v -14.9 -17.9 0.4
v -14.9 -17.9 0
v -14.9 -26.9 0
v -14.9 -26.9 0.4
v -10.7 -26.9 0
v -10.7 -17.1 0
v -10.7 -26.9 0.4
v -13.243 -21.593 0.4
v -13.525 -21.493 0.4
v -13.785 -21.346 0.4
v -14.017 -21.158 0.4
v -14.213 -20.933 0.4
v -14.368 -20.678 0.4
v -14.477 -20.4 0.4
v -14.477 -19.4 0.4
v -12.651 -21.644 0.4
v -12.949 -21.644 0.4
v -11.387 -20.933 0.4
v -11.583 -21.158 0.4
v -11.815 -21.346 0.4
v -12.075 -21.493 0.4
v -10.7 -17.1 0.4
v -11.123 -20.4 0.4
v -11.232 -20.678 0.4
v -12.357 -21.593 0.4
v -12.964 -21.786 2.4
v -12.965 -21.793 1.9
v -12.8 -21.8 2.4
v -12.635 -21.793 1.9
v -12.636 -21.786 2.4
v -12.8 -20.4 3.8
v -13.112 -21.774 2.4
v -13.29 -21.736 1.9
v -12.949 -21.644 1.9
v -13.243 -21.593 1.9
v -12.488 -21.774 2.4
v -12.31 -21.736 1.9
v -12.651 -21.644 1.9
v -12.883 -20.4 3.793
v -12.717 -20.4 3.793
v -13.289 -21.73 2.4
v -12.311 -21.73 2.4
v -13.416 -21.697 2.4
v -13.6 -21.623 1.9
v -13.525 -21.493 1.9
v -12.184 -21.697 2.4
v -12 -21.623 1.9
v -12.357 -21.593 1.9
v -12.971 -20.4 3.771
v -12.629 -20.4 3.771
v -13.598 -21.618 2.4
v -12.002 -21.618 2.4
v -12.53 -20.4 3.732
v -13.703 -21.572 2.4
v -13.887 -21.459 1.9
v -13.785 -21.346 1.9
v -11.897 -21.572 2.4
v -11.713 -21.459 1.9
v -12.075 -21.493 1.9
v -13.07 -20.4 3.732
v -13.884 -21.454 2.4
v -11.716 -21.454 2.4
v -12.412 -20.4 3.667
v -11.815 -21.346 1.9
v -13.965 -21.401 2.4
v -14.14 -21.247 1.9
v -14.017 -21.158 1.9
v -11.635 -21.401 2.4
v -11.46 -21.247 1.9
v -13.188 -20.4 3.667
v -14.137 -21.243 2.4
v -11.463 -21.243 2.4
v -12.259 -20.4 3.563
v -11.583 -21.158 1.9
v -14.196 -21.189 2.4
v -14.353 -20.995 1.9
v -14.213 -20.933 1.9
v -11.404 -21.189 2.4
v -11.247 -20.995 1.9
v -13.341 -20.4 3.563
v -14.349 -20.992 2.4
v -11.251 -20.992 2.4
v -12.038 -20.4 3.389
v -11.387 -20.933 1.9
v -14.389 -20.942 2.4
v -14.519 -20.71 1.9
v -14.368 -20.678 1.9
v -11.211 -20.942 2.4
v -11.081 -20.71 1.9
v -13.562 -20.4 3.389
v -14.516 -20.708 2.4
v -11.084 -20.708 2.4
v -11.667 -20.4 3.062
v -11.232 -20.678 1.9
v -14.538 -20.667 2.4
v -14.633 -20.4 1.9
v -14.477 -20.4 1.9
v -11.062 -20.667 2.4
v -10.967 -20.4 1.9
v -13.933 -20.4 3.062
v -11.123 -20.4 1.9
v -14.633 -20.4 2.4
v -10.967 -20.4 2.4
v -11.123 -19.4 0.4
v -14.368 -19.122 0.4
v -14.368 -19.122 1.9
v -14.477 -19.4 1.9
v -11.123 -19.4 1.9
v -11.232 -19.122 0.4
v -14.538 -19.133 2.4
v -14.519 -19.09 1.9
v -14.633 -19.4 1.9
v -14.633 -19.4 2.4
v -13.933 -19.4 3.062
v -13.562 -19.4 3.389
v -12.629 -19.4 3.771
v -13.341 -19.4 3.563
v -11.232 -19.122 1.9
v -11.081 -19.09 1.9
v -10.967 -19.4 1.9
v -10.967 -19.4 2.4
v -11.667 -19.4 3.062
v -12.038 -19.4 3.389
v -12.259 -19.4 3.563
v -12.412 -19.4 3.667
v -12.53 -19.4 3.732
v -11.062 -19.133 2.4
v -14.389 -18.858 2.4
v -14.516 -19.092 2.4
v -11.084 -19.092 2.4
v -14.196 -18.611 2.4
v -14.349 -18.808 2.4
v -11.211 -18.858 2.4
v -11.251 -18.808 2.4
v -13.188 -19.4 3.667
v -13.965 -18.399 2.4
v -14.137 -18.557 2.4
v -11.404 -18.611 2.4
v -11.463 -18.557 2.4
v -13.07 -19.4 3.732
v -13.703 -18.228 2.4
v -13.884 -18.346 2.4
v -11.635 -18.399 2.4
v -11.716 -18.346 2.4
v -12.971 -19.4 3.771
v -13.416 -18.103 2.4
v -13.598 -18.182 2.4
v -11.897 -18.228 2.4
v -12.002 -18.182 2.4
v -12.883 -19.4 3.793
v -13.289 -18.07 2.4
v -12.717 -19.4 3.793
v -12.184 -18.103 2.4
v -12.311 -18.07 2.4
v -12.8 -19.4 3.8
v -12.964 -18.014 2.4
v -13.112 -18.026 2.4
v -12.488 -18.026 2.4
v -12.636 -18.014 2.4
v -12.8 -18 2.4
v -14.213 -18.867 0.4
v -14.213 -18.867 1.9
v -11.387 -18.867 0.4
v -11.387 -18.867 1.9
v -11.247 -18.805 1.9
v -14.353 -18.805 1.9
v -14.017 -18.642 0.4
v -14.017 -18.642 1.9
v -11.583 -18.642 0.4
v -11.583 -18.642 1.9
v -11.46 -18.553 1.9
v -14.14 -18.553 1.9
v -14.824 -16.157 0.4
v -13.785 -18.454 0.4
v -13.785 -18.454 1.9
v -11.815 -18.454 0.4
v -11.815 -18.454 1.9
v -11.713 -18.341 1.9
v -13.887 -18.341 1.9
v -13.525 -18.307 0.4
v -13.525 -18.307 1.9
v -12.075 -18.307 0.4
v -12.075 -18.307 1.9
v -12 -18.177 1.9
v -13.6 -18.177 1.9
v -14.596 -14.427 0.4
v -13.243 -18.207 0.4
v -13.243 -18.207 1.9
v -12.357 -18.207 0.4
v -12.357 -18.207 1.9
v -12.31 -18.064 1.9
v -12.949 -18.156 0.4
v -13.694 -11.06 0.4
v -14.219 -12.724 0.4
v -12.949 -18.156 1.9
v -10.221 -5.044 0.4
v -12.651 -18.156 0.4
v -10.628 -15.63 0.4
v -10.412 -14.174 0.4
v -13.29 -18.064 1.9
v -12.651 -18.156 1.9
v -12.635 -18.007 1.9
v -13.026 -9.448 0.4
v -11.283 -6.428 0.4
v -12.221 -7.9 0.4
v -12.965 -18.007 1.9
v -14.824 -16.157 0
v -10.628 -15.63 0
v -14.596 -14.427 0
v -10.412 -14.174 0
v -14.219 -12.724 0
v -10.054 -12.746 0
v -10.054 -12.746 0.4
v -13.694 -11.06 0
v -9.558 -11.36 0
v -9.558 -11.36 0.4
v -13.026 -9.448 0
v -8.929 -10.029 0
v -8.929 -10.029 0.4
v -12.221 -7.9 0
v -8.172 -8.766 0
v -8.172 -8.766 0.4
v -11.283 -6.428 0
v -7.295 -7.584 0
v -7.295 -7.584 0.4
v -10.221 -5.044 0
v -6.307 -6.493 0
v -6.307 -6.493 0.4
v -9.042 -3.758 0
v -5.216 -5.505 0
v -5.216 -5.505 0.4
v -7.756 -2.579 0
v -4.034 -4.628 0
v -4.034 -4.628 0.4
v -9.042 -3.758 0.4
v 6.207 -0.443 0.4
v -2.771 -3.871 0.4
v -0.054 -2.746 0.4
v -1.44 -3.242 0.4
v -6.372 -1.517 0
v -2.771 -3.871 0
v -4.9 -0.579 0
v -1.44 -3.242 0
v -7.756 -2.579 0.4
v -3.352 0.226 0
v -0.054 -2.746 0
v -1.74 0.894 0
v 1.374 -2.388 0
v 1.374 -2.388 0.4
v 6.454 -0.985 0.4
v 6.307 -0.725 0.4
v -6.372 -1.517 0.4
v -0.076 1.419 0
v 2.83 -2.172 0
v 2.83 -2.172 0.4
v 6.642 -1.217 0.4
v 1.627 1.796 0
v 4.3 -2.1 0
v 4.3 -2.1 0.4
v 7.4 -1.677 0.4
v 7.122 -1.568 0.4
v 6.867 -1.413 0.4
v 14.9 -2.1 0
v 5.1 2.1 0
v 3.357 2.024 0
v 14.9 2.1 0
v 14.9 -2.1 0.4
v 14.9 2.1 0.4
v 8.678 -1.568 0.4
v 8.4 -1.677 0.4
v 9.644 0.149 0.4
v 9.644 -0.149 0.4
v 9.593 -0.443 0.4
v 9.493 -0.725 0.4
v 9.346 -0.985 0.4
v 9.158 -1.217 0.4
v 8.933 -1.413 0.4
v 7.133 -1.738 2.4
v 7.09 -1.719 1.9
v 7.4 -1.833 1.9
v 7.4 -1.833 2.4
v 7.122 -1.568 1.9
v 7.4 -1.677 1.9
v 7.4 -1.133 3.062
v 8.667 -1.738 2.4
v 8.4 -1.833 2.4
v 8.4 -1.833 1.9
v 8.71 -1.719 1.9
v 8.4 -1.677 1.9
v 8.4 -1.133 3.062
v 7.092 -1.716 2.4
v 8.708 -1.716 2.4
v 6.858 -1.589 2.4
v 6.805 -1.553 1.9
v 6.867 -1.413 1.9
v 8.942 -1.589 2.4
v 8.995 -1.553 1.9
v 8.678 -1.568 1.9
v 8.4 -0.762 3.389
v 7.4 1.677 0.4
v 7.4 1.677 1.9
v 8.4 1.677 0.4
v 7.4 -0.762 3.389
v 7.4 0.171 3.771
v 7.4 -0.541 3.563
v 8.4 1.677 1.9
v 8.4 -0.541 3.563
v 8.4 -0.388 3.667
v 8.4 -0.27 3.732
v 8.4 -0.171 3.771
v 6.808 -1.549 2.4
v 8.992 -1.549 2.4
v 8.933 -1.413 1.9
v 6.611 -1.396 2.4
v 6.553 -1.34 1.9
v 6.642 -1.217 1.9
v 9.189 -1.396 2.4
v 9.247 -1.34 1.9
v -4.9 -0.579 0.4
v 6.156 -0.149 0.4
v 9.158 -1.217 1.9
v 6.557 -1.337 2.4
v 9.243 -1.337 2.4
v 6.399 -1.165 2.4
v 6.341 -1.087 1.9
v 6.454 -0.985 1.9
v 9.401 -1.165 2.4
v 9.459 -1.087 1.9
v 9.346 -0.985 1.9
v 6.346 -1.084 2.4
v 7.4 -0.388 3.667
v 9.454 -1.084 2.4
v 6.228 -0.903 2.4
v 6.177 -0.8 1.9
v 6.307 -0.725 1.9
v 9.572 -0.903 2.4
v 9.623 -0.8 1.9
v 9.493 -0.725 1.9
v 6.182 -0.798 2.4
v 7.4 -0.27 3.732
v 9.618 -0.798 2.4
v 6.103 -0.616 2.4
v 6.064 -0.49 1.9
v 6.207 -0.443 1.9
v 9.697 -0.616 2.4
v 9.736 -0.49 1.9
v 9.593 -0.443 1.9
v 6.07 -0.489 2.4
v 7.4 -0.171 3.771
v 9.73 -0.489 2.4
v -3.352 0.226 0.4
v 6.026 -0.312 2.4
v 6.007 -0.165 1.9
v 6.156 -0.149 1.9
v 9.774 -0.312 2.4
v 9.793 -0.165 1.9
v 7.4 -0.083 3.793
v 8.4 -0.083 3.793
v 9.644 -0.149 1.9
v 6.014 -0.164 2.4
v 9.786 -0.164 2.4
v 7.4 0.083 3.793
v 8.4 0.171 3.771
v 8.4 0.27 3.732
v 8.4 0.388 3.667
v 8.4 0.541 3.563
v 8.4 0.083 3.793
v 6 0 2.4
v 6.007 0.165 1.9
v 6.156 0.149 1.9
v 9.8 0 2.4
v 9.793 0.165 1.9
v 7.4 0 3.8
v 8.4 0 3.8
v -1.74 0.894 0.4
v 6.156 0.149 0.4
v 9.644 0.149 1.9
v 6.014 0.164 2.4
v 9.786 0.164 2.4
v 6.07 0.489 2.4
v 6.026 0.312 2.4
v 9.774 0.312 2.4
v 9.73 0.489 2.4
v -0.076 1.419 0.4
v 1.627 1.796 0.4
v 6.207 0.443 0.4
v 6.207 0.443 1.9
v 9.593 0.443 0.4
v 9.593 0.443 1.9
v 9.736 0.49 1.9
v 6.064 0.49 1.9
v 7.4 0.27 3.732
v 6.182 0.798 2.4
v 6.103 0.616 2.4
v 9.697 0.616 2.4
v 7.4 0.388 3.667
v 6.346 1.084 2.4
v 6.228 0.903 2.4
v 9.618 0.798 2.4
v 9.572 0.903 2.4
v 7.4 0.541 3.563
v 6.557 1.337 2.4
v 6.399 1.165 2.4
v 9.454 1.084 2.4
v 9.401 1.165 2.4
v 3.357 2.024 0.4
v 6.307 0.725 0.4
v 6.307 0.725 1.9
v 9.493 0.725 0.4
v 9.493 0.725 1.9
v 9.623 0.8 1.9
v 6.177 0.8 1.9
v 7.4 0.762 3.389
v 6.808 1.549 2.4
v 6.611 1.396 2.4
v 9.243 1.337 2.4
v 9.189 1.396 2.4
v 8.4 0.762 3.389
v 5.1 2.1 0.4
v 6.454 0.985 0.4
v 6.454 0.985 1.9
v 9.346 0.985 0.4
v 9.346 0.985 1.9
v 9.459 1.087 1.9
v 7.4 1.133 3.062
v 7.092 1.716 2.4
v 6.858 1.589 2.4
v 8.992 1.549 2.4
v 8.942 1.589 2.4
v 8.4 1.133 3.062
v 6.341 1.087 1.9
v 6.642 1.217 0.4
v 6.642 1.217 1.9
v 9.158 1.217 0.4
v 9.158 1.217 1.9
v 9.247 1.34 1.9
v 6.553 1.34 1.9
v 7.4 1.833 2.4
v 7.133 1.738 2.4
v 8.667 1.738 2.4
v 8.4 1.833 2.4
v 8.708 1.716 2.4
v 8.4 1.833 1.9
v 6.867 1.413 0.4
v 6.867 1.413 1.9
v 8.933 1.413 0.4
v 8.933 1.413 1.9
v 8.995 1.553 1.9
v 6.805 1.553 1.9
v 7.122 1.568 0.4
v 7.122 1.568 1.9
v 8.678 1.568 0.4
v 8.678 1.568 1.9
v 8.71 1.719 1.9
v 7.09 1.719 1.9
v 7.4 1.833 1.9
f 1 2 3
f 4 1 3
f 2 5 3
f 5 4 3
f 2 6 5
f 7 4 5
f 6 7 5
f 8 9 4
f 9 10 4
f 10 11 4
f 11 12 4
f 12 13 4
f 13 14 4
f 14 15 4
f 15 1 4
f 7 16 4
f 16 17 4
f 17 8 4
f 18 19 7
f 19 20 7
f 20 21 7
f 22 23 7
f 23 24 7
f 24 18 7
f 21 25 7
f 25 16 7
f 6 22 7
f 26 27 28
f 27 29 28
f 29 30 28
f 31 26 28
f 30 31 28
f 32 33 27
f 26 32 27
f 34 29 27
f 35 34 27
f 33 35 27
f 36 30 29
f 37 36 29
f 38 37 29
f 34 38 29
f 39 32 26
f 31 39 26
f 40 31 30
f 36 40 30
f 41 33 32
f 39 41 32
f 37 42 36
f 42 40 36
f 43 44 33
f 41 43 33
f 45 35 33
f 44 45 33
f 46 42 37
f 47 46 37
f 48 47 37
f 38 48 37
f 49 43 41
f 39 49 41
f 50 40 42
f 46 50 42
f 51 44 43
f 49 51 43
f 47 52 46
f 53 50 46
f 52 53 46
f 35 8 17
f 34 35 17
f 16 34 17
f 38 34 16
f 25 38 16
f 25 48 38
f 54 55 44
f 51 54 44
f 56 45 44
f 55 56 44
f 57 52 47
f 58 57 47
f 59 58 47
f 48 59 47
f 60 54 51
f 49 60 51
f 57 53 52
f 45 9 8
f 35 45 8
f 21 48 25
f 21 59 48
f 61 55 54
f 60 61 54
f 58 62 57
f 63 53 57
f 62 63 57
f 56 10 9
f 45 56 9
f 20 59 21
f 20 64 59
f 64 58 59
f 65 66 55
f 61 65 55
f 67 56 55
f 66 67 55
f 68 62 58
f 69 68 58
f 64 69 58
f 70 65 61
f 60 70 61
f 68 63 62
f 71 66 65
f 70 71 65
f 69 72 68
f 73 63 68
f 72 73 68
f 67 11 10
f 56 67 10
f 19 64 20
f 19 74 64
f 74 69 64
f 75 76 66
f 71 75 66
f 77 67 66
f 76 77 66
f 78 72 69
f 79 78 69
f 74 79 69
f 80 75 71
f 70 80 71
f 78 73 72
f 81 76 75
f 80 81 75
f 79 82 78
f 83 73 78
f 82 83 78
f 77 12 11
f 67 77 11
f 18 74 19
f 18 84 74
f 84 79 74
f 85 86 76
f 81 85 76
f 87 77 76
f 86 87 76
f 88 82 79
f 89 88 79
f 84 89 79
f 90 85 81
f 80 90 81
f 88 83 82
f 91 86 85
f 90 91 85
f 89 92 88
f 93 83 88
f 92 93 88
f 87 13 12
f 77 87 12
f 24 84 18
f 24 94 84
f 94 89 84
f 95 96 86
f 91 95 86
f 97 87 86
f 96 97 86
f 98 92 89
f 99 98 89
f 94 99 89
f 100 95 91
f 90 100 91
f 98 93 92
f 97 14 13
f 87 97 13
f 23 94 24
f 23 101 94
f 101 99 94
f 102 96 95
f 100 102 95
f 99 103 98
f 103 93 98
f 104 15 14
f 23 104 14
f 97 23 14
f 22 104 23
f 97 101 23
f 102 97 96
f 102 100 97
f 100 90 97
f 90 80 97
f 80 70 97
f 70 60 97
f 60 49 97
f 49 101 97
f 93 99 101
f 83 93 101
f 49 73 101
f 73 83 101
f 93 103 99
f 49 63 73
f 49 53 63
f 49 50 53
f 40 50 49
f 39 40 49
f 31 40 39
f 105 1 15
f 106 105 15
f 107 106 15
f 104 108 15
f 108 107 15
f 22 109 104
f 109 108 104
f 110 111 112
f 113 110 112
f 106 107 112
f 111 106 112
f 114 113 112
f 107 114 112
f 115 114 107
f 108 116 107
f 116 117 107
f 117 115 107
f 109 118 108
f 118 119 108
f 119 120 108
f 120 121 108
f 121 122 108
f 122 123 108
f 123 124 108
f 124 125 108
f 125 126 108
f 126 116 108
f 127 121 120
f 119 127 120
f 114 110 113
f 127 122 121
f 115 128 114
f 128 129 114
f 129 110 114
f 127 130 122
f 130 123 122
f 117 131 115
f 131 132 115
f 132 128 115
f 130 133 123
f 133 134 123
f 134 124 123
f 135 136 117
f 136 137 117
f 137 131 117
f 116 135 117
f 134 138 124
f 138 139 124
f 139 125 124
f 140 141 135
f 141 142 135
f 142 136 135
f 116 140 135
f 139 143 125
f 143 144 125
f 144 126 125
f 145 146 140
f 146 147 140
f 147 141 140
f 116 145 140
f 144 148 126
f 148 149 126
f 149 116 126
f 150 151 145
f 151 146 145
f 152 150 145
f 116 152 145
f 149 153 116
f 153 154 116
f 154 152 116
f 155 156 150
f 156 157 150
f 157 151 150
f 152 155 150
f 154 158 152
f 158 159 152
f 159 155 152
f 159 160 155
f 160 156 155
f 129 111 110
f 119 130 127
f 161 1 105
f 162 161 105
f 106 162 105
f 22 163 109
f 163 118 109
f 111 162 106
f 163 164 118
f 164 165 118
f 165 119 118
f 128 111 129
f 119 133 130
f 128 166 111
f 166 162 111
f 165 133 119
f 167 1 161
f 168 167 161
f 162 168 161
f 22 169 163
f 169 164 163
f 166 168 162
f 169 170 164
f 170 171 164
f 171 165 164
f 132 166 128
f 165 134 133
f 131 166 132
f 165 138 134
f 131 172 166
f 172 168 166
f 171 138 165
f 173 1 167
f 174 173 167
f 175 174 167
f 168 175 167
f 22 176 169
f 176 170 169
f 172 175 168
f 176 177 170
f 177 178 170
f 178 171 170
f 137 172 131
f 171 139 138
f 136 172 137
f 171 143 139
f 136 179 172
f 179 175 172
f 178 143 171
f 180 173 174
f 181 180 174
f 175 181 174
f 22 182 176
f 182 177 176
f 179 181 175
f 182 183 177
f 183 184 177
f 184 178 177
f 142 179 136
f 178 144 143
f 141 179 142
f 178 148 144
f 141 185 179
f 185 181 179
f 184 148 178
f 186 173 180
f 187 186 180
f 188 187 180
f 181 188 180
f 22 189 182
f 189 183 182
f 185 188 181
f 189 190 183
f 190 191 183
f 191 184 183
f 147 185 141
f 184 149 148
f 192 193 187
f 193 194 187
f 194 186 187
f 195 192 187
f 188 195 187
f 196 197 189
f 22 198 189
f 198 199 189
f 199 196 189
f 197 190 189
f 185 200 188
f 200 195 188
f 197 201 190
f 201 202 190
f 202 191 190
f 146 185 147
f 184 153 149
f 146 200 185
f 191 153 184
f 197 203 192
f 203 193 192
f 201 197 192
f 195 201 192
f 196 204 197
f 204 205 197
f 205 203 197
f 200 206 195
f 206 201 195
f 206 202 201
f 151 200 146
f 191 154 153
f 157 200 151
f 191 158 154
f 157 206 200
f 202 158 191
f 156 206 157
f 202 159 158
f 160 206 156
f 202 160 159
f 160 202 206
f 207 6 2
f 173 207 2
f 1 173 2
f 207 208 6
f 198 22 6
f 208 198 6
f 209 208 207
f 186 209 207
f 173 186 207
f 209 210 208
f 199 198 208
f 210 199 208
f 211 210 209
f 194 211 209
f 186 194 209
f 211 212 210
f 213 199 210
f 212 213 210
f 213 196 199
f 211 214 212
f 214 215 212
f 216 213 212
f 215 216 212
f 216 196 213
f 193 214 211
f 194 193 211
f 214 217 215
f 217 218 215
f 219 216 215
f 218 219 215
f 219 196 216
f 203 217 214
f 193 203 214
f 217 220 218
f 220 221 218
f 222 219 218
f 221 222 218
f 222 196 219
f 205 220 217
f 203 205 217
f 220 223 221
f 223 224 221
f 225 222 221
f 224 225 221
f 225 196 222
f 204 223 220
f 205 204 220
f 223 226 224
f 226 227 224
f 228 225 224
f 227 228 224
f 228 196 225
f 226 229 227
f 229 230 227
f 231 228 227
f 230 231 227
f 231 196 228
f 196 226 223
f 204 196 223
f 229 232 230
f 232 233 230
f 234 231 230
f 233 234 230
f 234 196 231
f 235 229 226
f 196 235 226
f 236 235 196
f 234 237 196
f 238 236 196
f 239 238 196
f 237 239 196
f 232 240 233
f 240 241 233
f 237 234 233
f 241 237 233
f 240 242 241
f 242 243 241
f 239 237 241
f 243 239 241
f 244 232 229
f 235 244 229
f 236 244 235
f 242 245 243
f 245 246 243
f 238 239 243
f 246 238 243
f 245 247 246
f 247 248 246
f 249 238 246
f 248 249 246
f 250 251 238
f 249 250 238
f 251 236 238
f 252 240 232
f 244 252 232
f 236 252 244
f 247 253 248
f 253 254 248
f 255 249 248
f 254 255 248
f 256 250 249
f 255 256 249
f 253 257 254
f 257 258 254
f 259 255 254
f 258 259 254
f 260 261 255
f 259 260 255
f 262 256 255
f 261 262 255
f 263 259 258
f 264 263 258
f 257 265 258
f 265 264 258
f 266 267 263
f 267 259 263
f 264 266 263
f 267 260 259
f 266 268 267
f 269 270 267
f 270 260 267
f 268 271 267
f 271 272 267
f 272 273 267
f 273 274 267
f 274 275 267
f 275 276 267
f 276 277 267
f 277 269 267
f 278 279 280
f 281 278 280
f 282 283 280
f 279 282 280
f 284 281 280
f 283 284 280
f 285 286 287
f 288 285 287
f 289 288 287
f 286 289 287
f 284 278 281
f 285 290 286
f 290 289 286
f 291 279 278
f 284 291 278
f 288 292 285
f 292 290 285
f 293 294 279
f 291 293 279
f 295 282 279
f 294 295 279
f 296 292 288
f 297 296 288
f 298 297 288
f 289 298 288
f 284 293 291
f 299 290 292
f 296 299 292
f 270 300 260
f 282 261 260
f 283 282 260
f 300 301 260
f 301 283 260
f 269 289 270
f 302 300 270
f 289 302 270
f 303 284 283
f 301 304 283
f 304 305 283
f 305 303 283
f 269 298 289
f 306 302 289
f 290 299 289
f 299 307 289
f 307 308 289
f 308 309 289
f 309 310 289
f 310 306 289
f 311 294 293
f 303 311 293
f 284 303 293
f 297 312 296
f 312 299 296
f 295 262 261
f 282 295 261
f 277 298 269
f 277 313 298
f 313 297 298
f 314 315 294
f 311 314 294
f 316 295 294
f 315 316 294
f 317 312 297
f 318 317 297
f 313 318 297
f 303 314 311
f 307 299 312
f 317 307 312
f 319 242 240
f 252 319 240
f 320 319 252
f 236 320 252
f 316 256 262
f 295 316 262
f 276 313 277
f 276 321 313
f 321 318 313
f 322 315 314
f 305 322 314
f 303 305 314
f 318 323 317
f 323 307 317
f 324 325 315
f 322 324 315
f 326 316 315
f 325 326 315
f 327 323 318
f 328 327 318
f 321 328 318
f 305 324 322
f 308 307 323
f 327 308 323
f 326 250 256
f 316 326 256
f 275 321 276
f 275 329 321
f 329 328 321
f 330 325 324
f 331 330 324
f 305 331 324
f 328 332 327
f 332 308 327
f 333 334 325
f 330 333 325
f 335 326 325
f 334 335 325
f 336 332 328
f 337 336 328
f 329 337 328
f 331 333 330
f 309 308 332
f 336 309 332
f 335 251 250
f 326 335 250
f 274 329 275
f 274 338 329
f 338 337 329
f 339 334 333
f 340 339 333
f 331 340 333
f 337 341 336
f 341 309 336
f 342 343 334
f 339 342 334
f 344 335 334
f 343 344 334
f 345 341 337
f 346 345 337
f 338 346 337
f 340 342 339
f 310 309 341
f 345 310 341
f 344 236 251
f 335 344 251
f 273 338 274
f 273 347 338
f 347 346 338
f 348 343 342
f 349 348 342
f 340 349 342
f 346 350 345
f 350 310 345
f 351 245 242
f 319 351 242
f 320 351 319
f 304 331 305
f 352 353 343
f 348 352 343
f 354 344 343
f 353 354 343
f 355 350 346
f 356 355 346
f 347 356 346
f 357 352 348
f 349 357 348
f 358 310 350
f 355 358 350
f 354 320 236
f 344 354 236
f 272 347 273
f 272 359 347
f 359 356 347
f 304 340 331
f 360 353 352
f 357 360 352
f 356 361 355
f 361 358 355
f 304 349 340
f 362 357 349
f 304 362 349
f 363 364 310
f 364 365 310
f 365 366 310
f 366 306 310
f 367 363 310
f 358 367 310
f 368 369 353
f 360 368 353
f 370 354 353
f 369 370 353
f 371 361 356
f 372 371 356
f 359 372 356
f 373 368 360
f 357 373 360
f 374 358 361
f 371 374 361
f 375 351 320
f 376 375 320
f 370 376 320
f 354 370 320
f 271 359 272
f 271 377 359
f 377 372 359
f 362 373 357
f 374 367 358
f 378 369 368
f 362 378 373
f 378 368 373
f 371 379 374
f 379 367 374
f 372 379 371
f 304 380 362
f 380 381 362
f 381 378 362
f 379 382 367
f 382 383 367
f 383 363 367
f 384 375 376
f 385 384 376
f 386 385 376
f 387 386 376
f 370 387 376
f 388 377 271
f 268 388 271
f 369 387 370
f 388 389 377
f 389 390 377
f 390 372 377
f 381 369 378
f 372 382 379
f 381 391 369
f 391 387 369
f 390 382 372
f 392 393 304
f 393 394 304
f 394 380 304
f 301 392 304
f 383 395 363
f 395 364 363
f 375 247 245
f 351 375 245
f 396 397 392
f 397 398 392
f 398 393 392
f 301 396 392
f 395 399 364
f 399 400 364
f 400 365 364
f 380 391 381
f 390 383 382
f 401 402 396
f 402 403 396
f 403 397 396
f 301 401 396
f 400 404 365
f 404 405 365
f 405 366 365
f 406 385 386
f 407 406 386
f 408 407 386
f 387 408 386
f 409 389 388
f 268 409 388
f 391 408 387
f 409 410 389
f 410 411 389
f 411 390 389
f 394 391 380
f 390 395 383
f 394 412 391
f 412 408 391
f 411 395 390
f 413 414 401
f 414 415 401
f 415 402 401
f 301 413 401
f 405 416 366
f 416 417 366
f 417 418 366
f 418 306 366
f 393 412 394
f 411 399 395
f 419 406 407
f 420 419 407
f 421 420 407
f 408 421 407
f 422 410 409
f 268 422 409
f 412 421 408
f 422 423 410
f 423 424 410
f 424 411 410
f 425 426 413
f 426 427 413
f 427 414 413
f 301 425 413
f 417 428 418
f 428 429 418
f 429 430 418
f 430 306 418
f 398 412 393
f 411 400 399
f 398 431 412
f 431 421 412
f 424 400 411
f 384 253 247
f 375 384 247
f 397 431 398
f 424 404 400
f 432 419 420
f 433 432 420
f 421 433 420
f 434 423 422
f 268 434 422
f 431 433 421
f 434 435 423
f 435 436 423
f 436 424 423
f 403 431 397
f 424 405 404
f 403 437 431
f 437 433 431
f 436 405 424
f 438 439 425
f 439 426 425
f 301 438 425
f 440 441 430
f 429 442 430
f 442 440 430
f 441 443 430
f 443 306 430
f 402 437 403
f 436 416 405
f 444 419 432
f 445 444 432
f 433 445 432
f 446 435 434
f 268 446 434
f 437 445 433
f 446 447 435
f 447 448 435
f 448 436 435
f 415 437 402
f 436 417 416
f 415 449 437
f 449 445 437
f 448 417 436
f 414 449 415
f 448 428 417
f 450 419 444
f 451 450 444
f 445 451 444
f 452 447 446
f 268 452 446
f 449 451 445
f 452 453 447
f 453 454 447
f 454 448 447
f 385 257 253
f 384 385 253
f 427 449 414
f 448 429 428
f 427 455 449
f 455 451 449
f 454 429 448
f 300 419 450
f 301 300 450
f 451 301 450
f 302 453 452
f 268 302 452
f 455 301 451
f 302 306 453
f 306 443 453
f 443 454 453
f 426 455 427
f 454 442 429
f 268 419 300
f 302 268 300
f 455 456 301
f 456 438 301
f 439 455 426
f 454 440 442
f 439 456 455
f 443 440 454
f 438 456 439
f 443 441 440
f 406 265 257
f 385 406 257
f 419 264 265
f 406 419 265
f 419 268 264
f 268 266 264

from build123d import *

# Parameters (mm, degrees)
SKICA2_W                 = 29.8
SKICA2_H                 = 4.2
P_IDAT_VYSUNUT_M2_DEPTH  = 0.4
SKICA3_R                 = 1.75
P_IDAT_VYSUNUT_M3_DEPTH  = 1.5
SKICA5_R                 = 1.9
P_IDAT_VYSUNUT_M5_DEPTH  = 2
ZKOSEN_2_SIZE            = 1.5
SKICA7_W                 = 1
SKICA7_H                 = 5
ODEBRAT_VYSUNUT_M1_DEPTH = 3.5
SKICA8_W                 = 4.2
SKICA8_H                 = 24.8
P_IDAT_VYSUNUT_M6_DEPTH  = 0.4
SKICA9_R                 = 1.75
P_IDAT_VYSUNUT_M7_DEPTH  = 1.5
SKICA10_R                = 1.9
P_IDAT_VYSUNUT_M8_DEPTH  = 2
ZKOSEN_3_SIZE            = 1.5
SKICA12_W                = 5
SKICA12_H                = 1
ODEBRAT_VYSUNUT_M2_DEPTH = 3.5
ZAOBLIT1_R               = 15
ZAOBLIT2_R               = 20


with BuildPart() as part:
    # Skica2 → Přidat vysunutím2 (new body)
    with BuildSketch(Plane.XY):
        Rectangle(SKICA2_W, SKICA2_H)
    extrude(amount=P_IDAT_VYSUNUT_M2_DEPTH)

    # Skica3 → Přidat vysunutím3 (add)
    with BuildSketch(Plane.XY.offset(0.4)):
        with Locations((7.9, 0)):
            Circle(SKICA3_R)
    extrude(amount=P_IDAT_VYSUNUT_M3_DEPTH)

    # Skica5 → Přidat vysunutím5 (add)
    with BuildSketch(Plane.XY.offset(1.9)):
        with Locations((7.9, 0)):
            Circle(SKICA5_R)
    extrude(amount=P_IDAT_VYSUNUT_M5_DEPTH)

    # Zkosení2
    zkosen_2_edges = [part.edges().sort_by_distance(p)[0] for p in [
        (6, 0, 3.9),
    ]]
    chamfer(zkosen_2_edges, length=ZKOSEN_2_SIZE)

    # Skica7 → Odebrat vysunutím1 (cut)
    with BuildSketch(Plane.XY.offset(3.9)):
        with Locations((7.9, 0)):
            Rectangle(SKICA7_W, SKICA7_H)
    extrude(amount=-ODEBRAT_VYSUNUT_M1_DEPTH, mode=Mode.SUBTRACT)

    # Skica8 → Přidat vysunutím6 (add)
    with BuildSketch(Plane(origin=(0, 0, 0), x_dir=(-1, 0, 0), z_dir=(0, 0, -1))):
        with Locations((12.8, -14.5)):
            Rectangle(SKICA8_W, SKICA8_H)
    extrude(amount=-P_IDAT_VYSUNUT_M6_DEPTH)

    # Skica9 → Přidat vysunutím7 (add)
    with BuildSketch(Plane.XY.offset(0.4)):
        with Locations((-12.8, -19.9)):
            Circle(SKICA9_R)
    extrude(amount=P_IDAT_VYSUNUT_M7_DEPTH)

    # Skica10 → Přidat vysunutím8 (add)
    with BuildSketch(Plane.XY.offset(1.9)):
        with Locations((-12.8, -19.9)):
            Circle(SKICA10_R)
    extrude(amount=P_IDAT_VYSUNUT_M8_DEPTH)

    # Zkosení3
    zkosen_3_edges = [part.edges().sort_by_distance(p)[0] for p in [
        (-14.7, -19.9, 3.9),
    ]]
    chamfer(zkosen_3_edges, length=ZKOSEN_3_SIZE)

    # Skica12 → Odebrat vysunutím2 (cut)
    with BuildSketch(Plane.XY.offset(3.9)):
        with Locations((-12.8, -19.9)):
            Rectangle(SKICA12_W, SKICA12_H)
    extrude(amount=-ODEBRAT_VYSUNUT_M2_DEPTH, mode=Mode.SUBTRACT)

    # Zaoblit1
    zaoblit1_edges = [part.edges().sort_by_distance(p)[0] for p in [
        (-10.7, -2.1, 0.2),
    ]]
    fillet(zaoblit1_edges, radius=ZAOBLIT1_R)

    # Zaoblit2
    zaoblit2_edges = [part.edges().sort_by_distance(p)[0] for p in [
        (-14.9, 2.1, 0.2),
    ]]
    fillet(zaoblit2_edges, radius=ZAOBLIT2_R)


solid = part.part
